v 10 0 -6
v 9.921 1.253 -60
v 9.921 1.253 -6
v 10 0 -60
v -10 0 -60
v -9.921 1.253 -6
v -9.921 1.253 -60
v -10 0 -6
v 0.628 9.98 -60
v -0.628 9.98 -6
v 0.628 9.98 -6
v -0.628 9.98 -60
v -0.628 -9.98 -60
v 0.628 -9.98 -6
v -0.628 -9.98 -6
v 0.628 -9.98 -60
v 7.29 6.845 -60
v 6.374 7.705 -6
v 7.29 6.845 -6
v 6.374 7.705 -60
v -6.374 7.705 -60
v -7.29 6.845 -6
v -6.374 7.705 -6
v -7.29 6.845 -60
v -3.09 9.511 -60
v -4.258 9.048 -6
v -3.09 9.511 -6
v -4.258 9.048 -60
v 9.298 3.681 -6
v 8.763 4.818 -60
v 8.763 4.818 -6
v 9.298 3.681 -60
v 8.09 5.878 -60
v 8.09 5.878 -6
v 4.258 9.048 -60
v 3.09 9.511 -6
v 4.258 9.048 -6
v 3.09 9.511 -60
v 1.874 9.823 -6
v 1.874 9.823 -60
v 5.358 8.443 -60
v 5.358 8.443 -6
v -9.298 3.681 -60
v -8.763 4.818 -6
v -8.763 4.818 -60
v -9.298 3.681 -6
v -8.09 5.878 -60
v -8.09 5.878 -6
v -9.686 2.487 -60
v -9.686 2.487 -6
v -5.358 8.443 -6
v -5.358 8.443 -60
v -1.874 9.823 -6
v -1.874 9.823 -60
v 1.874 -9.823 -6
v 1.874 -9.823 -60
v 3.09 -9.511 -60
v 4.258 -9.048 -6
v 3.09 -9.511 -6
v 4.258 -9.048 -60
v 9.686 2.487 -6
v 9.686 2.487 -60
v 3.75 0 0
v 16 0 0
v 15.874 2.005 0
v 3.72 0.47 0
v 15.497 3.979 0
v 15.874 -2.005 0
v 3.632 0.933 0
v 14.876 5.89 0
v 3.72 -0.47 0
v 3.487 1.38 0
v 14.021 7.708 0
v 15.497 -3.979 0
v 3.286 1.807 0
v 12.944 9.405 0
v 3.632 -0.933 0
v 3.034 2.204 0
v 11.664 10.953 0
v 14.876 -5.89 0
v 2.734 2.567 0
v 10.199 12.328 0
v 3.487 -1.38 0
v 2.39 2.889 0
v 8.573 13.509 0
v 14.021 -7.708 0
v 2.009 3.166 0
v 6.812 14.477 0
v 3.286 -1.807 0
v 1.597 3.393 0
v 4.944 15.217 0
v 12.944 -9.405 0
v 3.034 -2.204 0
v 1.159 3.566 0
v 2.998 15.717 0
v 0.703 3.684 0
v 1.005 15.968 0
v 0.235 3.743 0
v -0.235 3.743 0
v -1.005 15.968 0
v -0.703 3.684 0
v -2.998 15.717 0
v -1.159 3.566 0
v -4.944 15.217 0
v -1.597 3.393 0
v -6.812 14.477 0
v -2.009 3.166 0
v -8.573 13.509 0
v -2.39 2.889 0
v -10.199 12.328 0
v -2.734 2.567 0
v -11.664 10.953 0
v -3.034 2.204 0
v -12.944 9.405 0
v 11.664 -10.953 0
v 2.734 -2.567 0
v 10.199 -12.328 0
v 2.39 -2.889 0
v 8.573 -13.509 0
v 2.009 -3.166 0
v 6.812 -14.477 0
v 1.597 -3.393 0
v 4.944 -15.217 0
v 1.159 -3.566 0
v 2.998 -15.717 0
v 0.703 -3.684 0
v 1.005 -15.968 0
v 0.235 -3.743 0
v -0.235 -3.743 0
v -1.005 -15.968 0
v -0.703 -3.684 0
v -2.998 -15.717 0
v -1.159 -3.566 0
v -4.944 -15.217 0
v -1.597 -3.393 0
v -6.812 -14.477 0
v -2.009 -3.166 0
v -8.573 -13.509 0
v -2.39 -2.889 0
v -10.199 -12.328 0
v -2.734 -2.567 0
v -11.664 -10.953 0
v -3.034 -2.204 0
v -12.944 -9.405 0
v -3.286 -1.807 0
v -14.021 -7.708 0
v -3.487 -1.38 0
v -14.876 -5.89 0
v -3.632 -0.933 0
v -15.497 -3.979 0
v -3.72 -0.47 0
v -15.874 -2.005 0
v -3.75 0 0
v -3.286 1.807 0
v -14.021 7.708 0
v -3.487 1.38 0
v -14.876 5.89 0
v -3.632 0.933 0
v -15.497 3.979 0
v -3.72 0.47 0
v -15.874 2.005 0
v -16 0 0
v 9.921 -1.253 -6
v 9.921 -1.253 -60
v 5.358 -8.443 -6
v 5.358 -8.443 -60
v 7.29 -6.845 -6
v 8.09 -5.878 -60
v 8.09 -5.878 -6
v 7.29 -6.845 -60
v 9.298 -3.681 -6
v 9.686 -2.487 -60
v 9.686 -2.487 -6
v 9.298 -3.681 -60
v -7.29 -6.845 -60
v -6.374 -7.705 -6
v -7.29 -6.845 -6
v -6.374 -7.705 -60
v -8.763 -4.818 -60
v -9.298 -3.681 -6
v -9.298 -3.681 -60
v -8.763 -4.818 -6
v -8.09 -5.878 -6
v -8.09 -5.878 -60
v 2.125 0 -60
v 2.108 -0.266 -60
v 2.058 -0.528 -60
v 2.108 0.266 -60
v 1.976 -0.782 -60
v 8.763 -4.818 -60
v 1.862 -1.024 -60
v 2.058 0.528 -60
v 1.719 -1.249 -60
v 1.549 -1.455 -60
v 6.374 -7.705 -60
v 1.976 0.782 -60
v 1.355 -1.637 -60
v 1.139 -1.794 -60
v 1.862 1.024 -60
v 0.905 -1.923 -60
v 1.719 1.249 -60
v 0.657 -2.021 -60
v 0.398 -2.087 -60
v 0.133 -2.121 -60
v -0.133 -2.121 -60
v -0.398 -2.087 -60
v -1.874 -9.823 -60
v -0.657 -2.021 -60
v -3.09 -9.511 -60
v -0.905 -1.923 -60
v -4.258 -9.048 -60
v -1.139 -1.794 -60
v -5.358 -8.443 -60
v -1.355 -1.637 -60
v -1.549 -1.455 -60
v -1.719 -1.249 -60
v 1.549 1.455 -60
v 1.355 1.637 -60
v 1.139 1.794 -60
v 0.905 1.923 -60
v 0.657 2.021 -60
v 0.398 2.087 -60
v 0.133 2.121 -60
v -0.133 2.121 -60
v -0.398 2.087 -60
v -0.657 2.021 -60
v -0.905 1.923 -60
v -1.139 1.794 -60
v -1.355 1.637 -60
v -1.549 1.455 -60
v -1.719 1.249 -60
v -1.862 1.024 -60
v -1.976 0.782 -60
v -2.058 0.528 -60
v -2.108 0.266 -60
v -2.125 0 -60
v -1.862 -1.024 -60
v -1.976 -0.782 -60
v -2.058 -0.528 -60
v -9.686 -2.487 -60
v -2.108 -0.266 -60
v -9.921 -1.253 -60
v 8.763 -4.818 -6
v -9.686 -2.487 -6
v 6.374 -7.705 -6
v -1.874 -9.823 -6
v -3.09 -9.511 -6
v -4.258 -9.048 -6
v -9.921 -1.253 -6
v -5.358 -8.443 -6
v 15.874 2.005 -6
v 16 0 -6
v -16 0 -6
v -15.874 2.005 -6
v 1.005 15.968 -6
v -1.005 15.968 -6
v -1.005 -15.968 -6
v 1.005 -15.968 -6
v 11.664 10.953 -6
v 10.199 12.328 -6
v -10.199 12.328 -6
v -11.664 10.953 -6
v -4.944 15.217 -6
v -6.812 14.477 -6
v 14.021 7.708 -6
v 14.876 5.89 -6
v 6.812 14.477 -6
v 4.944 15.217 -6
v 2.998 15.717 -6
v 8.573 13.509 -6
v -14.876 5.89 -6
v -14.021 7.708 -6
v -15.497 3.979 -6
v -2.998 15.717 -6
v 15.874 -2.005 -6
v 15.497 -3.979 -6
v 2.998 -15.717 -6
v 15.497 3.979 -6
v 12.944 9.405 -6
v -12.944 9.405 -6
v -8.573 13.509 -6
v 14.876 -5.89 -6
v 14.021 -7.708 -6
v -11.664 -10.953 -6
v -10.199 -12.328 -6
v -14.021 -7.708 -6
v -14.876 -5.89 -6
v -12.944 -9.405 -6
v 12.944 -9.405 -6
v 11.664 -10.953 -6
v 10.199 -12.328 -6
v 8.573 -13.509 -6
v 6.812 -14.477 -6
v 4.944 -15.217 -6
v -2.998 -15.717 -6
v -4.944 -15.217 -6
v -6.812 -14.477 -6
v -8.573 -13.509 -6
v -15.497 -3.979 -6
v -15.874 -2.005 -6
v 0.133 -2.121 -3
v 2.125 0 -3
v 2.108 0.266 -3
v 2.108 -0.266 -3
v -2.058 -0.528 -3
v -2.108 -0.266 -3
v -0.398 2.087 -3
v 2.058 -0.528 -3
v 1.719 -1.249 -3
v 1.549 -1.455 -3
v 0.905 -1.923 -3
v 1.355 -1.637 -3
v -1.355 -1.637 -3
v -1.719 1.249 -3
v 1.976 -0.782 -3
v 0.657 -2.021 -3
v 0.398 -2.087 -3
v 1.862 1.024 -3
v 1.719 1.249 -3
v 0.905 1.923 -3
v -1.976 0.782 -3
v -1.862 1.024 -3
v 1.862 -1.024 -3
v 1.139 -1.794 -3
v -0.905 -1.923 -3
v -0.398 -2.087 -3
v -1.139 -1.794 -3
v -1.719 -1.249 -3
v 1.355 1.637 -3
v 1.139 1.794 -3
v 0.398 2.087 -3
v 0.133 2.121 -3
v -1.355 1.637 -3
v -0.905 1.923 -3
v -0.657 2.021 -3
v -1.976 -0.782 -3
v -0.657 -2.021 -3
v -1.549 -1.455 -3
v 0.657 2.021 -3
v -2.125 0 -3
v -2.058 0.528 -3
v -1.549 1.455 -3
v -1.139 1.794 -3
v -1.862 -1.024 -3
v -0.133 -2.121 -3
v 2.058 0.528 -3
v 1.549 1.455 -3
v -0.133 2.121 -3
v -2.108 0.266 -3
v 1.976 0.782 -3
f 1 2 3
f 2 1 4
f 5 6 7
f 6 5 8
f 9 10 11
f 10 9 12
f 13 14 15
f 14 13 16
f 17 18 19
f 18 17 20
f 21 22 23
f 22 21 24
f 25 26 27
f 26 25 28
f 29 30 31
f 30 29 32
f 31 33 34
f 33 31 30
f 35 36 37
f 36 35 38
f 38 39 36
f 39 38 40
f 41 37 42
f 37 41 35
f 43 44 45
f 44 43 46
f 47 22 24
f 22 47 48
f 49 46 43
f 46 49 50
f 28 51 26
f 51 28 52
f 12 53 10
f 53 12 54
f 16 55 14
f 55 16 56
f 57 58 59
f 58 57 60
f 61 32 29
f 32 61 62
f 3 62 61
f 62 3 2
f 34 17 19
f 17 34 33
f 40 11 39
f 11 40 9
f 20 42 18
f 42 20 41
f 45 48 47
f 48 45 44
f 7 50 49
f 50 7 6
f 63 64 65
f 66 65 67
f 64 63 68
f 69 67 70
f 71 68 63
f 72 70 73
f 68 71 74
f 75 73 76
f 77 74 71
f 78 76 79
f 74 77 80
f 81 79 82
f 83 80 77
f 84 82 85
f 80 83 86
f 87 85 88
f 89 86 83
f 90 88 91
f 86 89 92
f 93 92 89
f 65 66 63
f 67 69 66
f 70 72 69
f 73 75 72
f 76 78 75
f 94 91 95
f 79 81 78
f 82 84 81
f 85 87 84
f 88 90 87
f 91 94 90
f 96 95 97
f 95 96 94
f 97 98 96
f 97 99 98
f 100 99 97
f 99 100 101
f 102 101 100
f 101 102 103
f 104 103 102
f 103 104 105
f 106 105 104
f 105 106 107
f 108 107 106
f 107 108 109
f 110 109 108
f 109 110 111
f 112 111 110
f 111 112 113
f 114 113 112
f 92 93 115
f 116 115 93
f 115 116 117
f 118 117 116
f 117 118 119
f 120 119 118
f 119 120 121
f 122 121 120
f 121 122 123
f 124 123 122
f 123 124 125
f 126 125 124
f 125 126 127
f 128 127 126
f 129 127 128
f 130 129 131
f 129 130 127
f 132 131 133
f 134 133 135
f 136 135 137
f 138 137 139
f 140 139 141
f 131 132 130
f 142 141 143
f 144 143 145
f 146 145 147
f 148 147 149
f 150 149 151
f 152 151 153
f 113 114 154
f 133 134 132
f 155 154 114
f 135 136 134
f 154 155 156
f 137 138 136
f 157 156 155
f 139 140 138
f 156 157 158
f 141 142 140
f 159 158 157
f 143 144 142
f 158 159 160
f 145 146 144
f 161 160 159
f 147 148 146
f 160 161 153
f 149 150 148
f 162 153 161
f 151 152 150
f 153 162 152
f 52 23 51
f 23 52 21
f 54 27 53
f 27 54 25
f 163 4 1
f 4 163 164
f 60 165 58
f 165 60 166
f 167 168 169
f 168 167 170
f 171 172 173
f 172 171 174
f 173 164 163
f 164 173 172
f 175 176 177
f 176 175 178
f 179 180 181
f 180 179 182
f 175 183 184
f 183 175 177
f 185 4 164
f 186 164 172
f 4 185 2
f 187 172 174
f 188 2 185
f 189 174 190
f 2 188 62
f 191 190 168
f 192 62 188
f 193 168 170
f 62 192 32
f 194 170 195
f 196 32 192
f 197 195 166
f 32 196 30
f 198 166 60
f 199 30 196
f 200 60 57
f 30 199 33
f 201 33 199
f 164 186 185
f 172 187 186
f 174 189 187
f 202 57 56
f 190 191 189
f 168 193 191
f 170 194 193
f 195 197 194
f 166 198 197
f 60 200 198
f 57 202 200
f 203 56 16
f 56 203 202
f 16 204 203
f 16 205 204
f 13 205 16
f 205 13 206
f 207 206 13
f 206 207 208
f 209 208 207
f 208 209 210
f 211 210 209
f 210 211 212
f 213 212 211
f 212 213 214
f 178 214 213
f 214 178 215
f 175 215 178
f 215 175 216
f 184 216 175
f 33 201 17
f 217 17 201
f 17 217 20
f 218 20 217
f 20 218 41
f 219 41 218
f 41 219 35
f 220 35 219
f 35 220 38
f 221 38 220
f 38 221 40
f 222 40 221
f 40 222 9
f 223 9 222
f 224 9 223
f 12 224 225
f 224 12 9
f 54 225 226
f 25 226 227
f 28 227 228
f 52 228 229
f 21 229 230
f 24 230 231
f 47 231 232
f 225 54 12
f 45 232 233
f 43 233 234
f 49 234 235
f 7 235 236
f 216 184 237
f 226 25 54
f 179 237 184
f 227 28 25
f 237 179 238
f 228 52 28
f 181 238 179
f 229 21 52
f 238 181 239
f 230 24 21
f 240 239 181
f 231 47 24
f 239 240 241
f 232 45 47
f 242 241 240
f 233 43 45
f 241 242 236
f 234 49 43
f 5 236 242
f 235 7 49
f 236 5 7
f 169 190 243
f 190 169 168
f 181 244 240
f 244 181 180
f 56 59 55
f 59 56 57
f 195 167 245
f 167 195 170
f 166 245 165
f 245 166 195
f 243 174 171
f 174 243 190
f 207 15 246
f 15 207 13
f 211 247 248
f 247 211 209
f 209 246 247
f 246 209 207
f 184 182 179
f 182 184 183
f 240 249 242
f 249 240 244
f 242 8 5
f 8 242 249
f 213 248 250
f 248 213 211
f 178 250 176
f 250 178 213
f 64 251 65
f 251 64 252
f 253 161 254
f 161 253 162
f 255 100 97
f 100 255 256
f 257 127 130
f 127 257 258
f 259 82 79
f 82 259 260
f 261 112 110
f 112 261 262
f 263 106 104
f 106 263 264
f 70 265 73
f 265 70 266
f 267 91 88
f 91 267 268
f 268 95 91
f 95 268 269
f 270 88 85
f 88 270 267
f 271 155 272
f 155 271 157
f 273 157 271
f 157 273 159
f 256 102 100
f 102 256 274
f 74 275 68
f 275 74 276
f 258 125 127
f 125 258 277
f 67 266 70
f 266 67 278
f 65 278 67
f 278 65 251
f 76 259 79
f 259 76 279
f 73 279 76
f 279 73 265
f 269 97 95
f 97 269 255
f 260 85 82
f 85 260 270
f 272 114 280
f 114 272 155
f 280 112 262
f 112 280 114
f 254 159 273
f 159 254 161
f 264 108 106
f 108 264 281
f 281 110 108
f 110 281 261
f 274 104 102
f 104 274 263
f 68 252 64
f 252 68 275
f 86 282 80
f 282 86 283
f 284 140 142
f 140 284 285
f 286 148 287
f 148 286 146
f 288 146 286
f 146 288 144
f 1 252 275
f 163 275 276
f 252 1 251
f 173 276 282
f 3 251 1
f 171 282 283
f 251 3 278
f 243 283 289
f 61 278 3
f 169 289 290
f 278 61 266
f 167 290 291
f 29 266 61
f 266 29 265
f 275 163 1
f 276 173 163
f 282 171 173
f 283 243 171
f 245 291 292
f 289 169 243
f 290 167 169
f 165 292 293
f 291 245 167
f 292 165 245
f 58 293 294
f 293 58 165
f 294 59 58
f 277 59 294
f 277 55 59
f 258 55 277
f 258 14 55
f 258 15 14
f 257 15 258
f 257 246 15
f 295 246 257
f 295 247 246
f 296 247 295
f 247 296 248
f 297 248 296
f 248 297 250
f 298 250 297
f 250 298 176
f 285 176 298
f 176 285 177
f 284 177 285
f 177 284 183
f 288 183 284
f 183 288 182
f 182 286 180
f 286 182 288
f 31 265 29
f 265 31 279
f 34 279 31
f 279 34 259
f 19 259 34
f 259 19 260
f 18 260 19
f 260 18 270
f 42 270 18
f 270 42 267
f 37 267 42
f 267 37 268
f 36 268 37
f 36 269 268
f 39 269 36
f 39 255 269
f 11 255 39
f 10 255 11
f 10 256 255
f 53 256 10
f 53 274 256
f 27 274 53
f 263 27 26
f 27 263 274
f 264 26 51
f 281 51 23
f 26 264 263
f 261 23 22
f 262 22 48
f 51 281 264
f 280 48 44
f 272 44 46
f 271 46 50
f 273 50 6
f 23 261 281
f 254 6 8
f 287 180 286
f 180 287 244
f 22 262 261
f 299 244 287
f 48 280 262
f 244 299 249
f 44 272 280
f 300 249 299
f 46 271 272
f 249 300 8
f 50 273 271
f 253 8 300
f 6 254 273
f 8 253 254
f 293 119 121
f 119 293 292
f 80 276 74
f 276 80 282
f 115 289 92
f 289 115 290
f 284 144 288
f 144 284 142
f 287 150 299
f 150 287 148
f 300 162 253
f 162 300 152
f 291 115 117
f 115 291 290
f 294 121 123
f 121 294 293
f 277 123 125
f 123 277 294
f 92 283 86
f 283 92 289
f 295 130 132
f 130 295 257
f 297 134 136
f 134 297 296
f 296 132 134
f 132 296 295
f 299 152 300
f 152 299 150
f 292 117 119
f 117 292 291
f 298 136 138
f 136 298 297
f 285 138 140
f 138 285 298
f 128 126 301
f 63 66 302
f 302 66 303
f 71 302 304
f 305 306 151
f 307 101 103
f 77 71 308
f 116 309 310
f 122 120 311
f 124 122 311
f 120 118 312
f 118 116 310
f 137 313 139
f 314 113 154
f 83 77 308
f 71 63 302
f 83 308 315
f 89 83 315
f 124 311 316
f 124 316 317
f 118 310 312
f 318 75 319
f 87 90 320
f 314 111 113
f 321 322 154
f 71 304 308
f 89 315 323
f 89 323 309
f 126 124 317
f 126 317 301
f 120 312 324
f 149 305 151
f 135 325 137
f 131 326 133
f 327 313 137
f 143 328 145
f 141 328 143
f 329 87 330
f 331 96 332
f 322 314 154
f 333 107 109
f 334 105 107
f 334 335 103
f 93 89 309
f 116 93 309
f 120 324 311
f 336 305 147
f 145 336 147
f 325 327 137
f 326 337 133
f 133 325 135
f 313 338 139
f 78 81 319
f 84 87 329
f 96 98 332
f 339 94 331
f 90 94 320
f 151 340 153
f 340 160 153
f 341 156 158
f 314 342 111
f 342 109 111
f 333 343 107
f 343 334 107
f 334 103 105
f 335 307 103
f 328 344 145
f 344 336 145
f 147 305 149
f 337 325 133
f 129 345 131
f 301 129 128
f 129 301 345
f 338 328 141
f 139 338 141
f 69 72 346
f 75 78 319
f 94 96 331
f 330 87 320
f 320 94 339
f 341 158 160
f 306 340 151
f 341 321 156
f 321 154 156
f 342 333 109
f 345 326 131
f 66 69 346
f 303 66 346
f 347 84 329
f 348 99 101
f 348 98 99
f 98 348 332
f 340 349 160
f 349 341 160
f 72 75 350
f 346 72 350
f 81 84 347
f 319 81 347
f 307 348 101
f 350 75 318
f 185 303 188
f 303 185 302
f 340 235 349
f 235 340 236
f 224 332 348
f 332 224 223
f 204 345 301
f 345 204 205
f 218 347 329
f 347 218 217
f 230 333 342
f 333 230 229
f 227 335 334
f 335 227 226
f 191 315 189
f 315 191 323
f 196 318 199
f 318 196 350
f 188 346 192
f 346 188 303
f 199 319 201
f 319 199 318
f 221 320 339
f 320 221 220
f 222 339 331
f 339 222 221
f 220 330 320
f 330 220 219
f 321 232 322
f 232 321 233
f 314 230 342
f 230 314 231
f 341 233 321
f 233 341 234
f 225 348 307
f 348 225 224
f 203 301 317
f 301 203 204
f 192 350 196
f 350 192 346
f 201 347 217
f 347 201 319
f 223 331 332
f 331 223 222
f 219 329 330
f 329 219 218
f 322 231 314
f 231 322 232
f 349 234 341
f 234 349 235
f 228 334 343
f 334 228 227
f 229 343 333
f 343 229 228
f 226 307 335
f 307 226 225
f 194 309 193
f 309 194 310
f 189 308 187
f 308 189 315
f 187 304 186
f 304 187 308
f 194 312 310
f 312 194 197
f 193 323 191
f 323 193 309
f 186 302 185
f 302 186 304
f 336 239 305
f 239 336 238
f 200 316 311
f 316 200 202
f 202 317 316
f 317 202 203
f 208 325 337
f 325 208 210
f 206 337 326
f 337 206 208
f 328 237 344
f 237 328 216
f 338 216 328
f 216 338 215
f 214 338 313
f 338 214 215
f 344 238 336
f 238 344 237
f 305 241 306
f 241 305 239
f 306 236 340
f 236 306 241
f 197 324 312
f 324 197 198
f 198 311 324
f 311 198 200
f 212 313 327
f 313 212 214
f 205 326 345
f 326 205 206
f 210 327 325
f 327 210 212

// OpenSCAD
$fn = 50;


difference() {
	union() {
		translate(v = [0, 0, -60.0000000000]) {
			cylinder(h = 60, r = 10.0000000000);
		}
		translate(v = [0, 0, -6.0000000000]) {
			cylinder(h = 6, r = 16.0000000000);
		}
	}
	union() {
		translate(v = [0, 0, 0]) {
			rotate(a = [0, 0, 0]) {
				difference() {
					union() {
						#translate(v = [0, 0, -60.0000000000]) {
							cylinder(h = 60, r = 2.0000000000);
						}
						#translate(v = [0, 0, -3]) {
							cylinder(h = 3, r1 = 2.1250000000, r2 = 3.7500000000);
						}
						#translate(v = [0, 0, -60.0000000000]) {
							cylinder(h = 60, r = 2.1250000000);
						}
						#translate(v = [0, 0, -60.0000000000]) {
							cylinder(h = 60, r = 2.0000000000);
						}
					}
					union();
				}
			}
		}
	}
}
